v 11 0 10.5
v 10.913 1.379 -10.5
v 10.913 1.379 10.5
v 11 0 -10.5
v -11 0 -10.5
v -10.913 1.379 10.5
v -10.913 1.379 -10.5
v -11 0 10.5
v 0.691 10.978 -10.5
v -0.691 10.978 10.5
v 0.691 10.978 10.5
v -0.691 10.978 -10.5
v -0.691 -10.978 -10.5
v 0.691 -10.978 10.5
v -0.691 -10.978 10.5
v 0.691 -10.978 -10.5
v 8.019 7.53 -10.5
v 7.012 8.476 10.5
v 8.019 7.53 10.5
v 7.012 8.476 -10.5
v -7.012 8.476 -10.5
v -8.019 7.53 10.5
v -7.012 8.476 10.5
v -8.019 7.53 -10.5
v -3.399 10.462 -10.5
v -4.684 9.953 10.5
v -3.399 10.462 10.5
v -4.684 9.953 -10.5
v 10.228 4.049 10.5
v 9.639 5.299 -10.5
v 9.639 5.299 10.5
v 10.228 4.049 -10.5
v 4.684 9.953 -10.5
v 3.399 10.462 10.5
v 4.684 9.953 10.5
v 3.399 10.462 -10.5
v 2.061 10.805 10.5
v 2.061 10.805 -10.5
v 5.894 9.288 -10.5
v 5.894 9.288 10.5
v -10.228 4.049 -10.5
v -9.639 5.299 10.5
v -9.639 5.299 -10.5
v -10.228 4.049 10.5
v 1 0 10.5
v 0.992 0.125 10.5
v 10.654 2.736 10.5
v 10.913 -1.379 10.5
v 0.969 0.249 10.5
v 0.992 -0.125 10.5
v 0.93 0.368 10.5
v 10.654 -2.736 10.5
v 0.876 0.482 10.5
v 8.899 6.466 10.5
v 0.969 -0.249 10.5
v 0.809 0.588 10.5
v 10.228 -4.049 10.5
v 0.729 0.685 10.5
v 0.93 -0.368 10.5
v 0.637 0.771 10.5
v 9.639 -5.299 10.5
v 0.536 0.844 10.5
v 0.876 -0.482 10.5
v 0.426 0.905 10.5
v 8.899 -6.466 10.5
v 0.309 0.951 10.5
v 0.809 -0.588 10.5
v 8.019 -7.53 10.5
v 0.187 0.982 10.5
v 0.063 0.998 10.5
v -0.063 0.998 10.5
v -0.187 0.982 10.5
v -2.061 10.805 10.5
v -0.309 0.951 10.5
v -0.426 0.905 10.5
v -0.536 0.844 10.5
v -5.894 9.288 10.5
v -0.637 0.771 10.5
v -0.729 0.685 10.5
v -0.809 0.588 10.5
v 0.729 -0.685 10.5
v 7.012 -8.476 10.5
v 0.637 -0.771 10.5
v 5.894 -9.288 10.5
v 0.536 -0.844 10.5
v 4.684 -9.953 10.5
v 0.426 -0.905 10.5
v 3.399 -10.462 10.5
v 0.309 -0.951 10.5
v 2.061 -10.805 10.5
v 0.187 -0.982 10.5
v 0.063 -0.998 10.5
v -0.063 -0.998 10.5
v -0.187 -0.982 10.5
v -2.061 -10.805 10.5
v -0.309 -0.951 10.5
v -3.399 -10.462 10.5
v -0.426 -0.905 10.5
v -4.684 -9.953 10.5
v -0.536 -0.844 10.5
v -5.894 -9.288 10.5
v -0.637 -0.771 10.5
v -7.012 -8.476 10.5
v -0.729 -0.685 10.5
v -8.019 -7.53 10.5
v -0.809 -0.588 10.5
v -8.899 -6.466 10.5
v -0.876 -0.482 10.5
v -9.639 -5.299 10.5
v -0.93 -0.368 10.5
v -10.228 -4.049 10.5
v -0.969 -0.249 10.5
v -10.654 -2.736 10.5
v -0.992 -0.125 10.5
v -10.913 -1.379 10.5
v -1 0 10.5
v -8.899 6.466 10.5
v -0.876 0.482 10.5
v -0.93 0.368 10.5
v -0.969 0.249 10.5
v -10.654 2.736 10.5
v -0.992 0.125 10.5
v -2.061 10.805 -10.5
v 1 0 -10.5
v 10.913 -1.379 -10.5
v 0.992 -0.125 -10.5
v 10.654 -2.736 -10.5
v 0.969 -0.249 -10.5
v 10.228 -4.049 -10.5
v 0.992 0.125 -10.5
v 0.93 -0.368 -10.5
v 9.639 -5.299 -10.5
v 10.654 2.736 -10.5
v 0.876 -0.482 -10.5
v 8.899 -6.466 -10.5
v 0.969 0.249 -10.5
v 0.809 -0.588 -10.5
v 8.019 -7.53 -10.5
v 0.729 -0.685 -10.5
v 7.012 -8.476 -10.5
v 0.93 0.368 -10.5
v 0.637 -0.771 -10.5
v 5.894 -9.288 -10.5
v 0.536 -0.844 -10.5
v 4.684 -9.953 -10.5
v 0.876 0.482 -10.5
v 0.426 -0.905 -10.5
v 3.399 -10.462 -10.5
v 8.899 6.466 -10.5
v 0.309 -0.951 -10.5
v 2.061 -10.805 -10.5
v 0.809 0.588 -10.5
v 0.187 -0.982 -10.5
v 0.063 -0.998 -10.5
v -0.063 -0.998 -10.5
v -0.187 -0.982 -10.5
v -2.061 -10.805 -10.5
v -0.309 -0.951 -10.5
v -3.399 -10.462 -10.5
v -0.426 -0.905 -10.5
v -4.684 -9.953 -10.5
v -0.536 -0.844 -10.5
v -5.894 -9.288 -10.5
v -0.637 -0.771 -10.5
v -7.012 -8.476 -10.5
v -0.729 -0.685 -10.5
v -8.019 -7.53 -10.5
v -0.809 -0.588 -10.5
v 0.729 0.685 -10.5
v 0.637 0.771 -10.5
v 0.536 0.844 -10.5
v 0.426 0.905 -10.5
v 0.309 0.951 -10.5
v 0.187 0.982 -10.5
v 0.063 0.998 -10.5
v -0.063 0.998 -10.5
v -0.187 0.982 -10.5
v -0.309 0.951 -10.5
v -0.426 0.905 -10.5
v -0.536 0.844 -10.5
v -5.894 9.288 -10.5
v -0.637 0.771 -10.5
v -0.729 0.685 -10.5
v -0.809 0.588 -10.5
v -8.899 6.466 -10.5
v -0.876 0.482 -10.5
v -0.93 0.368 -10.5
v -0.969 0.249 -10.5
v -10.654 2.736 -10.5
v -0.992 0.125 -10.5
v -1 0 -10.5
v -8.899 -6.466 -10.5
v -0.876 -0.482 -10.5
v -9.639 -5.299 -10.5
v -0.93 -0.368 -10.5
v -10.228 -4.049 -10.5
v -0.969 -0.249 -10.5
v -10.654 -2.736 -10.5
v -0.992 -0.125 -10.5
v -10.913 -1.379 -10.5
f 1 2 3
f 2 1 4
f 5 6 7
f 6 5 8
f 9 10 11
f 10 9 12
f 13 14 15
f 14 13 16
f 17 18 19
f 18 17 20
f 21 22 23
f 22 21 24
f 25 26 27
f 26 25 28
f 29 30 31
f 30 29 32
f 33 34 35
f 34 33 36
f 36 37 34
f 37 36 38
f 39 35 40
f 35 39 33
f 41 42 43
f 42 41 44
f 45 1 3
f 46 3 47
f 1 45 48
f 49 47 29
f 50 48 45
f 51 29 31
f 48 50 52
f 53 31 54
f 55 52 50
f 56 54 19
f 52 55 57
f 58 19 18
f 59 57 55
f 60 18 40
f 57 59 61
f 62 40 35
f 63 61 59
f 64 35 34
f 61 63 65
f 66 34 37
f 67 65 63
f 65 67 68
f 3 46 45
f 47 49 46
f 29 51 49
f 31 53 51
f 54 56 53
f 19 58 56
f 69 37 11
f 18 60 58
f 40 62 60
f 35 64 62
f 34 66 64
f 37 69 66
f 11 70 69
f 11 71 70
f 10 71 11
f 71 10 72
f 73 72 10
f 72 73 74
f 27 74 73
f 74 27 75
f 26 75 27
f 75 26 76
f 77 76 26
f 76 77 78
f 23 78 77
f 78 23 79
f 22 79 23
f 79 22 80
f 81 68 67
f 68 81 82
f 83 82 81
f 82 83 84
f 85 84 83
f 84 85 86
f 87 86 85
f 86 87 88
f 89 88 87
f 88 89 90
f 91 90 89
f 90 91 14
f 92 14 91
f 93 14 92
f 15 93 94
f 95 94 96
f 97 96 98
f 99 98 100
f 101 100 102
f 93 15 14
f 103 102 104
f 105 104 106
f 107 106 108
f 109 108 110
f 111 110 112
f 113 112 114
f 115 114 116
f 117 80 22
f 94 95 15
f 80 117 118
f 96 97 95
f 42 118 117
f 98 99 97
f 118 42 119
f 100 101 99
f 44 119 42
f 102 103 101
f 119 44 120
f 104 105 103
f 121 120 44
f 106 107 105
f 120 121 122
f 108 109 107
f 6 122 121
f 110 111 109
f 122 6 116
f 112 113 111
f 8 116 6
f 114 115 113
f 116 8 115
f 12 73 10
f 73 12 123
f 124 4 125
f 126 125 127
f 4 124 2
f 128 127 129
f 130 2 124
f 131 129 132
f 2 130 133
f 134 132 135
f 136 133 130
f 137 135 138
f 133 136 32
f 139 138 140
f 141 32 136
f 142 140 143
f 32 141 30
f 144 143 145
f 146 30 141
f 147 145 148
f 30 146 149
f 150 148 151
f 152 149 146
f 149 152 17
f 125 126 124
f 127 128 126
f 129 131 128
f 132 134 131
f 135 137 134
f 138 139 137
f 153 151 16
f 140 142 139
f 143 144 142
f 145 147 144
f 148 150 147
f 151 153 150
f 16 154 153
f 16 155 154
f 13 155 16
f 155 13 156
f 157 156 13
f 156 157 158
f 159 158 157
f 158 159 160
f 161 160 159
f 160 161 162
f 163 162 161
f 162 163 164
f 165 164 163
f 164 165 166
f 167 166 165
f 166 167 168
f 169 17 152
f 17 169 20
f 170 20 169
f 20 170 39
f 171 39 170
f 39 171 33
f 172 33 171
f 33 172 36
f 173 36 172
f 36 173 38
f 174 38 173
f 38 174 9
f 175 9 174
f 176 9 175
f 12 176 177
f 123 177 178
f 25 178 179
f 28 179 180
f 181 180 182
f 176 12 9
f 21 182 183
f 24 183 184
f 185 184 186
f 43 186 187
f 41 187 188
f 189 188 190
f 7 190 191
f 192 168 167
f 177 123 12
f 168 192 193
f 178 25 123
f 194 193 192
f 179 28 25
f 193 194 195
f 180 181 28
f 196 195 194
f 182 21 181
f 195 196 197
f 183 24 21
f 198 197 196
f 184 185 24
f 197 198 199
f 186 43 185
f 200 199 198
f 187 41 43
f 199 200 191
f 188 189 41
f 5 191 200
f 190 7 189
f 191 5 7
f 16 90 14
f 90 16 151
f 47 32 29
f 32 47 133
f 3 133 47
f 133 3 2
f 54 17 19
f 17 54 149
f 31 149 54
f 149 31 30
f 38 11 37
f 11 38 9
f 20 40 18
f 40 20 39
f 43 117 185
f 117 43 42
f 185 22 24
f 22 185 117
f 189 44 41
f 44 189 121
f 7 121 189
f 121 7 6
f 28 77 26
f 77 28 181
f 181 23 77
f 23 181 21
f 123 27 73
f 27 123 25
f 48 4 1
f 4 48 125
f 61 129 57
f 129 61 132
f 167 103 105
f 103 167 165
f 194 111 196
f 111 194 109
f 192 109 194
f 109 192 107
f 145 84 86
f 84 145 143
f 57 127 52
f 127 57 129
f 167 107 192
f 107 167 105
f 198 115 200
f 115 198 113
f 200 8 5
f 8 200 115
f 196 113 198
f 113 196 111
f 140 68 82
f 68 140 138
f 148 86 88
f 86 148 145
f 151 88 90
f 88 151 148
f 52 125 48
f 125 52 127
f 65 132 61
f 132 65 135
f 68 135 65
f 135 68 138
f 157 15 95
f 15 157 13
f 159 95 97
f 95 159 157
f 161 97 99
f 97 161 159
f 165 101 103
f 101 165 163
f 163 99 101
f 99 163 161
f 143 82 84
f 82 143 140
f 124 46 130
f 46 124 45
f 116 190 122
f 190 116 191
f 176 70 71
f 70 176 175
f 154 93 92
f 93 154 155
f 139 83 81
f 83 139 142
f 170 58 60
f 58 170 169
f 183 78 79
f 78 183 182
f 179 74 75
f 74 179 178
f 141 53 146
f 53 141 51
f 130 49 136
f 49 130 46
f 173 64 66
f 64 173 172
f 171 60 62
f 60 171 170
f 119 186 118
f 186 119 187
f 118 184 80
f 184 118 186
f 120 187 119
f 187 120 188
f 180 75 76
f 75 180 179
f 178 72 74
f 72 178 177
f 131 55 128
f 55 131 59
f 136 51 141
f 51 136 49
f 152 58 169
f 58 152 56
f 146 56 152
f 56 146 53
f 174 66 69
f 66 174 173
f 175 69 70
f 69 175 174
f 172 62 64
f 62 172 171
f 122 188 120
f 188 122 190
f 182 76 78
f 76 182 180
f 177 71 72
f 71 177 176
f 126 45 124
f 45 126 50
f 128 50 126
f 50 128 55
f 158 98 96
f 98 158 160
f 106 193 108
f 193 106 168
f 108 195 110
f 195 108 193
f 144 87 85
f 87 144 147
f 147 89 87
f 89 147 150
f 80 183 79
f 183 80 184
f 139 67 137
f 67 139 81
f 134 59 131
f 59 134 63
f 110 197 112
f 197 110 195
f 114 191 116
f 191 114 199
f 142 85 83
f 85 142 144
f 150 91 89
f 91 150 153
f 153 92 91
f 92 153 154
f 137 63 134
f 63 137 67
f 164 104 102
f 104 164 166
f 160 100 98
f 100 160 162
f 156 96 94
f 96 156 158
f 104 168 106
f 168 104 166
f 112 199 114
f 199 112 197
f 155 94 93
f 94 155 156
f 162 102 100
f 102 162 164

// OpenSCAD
$fn = 50;


difference() {
	union() {
		translate(v = [0, 0, -10.5000000000]) {
			cylinder(h = 21, r = 11.0000000000);
		}
	}
	union() {
		translate(v = [0, 0, -100.0000000000]) {
			cylinder(h = 200, r = 1.0000000000);
		}
	}
}
